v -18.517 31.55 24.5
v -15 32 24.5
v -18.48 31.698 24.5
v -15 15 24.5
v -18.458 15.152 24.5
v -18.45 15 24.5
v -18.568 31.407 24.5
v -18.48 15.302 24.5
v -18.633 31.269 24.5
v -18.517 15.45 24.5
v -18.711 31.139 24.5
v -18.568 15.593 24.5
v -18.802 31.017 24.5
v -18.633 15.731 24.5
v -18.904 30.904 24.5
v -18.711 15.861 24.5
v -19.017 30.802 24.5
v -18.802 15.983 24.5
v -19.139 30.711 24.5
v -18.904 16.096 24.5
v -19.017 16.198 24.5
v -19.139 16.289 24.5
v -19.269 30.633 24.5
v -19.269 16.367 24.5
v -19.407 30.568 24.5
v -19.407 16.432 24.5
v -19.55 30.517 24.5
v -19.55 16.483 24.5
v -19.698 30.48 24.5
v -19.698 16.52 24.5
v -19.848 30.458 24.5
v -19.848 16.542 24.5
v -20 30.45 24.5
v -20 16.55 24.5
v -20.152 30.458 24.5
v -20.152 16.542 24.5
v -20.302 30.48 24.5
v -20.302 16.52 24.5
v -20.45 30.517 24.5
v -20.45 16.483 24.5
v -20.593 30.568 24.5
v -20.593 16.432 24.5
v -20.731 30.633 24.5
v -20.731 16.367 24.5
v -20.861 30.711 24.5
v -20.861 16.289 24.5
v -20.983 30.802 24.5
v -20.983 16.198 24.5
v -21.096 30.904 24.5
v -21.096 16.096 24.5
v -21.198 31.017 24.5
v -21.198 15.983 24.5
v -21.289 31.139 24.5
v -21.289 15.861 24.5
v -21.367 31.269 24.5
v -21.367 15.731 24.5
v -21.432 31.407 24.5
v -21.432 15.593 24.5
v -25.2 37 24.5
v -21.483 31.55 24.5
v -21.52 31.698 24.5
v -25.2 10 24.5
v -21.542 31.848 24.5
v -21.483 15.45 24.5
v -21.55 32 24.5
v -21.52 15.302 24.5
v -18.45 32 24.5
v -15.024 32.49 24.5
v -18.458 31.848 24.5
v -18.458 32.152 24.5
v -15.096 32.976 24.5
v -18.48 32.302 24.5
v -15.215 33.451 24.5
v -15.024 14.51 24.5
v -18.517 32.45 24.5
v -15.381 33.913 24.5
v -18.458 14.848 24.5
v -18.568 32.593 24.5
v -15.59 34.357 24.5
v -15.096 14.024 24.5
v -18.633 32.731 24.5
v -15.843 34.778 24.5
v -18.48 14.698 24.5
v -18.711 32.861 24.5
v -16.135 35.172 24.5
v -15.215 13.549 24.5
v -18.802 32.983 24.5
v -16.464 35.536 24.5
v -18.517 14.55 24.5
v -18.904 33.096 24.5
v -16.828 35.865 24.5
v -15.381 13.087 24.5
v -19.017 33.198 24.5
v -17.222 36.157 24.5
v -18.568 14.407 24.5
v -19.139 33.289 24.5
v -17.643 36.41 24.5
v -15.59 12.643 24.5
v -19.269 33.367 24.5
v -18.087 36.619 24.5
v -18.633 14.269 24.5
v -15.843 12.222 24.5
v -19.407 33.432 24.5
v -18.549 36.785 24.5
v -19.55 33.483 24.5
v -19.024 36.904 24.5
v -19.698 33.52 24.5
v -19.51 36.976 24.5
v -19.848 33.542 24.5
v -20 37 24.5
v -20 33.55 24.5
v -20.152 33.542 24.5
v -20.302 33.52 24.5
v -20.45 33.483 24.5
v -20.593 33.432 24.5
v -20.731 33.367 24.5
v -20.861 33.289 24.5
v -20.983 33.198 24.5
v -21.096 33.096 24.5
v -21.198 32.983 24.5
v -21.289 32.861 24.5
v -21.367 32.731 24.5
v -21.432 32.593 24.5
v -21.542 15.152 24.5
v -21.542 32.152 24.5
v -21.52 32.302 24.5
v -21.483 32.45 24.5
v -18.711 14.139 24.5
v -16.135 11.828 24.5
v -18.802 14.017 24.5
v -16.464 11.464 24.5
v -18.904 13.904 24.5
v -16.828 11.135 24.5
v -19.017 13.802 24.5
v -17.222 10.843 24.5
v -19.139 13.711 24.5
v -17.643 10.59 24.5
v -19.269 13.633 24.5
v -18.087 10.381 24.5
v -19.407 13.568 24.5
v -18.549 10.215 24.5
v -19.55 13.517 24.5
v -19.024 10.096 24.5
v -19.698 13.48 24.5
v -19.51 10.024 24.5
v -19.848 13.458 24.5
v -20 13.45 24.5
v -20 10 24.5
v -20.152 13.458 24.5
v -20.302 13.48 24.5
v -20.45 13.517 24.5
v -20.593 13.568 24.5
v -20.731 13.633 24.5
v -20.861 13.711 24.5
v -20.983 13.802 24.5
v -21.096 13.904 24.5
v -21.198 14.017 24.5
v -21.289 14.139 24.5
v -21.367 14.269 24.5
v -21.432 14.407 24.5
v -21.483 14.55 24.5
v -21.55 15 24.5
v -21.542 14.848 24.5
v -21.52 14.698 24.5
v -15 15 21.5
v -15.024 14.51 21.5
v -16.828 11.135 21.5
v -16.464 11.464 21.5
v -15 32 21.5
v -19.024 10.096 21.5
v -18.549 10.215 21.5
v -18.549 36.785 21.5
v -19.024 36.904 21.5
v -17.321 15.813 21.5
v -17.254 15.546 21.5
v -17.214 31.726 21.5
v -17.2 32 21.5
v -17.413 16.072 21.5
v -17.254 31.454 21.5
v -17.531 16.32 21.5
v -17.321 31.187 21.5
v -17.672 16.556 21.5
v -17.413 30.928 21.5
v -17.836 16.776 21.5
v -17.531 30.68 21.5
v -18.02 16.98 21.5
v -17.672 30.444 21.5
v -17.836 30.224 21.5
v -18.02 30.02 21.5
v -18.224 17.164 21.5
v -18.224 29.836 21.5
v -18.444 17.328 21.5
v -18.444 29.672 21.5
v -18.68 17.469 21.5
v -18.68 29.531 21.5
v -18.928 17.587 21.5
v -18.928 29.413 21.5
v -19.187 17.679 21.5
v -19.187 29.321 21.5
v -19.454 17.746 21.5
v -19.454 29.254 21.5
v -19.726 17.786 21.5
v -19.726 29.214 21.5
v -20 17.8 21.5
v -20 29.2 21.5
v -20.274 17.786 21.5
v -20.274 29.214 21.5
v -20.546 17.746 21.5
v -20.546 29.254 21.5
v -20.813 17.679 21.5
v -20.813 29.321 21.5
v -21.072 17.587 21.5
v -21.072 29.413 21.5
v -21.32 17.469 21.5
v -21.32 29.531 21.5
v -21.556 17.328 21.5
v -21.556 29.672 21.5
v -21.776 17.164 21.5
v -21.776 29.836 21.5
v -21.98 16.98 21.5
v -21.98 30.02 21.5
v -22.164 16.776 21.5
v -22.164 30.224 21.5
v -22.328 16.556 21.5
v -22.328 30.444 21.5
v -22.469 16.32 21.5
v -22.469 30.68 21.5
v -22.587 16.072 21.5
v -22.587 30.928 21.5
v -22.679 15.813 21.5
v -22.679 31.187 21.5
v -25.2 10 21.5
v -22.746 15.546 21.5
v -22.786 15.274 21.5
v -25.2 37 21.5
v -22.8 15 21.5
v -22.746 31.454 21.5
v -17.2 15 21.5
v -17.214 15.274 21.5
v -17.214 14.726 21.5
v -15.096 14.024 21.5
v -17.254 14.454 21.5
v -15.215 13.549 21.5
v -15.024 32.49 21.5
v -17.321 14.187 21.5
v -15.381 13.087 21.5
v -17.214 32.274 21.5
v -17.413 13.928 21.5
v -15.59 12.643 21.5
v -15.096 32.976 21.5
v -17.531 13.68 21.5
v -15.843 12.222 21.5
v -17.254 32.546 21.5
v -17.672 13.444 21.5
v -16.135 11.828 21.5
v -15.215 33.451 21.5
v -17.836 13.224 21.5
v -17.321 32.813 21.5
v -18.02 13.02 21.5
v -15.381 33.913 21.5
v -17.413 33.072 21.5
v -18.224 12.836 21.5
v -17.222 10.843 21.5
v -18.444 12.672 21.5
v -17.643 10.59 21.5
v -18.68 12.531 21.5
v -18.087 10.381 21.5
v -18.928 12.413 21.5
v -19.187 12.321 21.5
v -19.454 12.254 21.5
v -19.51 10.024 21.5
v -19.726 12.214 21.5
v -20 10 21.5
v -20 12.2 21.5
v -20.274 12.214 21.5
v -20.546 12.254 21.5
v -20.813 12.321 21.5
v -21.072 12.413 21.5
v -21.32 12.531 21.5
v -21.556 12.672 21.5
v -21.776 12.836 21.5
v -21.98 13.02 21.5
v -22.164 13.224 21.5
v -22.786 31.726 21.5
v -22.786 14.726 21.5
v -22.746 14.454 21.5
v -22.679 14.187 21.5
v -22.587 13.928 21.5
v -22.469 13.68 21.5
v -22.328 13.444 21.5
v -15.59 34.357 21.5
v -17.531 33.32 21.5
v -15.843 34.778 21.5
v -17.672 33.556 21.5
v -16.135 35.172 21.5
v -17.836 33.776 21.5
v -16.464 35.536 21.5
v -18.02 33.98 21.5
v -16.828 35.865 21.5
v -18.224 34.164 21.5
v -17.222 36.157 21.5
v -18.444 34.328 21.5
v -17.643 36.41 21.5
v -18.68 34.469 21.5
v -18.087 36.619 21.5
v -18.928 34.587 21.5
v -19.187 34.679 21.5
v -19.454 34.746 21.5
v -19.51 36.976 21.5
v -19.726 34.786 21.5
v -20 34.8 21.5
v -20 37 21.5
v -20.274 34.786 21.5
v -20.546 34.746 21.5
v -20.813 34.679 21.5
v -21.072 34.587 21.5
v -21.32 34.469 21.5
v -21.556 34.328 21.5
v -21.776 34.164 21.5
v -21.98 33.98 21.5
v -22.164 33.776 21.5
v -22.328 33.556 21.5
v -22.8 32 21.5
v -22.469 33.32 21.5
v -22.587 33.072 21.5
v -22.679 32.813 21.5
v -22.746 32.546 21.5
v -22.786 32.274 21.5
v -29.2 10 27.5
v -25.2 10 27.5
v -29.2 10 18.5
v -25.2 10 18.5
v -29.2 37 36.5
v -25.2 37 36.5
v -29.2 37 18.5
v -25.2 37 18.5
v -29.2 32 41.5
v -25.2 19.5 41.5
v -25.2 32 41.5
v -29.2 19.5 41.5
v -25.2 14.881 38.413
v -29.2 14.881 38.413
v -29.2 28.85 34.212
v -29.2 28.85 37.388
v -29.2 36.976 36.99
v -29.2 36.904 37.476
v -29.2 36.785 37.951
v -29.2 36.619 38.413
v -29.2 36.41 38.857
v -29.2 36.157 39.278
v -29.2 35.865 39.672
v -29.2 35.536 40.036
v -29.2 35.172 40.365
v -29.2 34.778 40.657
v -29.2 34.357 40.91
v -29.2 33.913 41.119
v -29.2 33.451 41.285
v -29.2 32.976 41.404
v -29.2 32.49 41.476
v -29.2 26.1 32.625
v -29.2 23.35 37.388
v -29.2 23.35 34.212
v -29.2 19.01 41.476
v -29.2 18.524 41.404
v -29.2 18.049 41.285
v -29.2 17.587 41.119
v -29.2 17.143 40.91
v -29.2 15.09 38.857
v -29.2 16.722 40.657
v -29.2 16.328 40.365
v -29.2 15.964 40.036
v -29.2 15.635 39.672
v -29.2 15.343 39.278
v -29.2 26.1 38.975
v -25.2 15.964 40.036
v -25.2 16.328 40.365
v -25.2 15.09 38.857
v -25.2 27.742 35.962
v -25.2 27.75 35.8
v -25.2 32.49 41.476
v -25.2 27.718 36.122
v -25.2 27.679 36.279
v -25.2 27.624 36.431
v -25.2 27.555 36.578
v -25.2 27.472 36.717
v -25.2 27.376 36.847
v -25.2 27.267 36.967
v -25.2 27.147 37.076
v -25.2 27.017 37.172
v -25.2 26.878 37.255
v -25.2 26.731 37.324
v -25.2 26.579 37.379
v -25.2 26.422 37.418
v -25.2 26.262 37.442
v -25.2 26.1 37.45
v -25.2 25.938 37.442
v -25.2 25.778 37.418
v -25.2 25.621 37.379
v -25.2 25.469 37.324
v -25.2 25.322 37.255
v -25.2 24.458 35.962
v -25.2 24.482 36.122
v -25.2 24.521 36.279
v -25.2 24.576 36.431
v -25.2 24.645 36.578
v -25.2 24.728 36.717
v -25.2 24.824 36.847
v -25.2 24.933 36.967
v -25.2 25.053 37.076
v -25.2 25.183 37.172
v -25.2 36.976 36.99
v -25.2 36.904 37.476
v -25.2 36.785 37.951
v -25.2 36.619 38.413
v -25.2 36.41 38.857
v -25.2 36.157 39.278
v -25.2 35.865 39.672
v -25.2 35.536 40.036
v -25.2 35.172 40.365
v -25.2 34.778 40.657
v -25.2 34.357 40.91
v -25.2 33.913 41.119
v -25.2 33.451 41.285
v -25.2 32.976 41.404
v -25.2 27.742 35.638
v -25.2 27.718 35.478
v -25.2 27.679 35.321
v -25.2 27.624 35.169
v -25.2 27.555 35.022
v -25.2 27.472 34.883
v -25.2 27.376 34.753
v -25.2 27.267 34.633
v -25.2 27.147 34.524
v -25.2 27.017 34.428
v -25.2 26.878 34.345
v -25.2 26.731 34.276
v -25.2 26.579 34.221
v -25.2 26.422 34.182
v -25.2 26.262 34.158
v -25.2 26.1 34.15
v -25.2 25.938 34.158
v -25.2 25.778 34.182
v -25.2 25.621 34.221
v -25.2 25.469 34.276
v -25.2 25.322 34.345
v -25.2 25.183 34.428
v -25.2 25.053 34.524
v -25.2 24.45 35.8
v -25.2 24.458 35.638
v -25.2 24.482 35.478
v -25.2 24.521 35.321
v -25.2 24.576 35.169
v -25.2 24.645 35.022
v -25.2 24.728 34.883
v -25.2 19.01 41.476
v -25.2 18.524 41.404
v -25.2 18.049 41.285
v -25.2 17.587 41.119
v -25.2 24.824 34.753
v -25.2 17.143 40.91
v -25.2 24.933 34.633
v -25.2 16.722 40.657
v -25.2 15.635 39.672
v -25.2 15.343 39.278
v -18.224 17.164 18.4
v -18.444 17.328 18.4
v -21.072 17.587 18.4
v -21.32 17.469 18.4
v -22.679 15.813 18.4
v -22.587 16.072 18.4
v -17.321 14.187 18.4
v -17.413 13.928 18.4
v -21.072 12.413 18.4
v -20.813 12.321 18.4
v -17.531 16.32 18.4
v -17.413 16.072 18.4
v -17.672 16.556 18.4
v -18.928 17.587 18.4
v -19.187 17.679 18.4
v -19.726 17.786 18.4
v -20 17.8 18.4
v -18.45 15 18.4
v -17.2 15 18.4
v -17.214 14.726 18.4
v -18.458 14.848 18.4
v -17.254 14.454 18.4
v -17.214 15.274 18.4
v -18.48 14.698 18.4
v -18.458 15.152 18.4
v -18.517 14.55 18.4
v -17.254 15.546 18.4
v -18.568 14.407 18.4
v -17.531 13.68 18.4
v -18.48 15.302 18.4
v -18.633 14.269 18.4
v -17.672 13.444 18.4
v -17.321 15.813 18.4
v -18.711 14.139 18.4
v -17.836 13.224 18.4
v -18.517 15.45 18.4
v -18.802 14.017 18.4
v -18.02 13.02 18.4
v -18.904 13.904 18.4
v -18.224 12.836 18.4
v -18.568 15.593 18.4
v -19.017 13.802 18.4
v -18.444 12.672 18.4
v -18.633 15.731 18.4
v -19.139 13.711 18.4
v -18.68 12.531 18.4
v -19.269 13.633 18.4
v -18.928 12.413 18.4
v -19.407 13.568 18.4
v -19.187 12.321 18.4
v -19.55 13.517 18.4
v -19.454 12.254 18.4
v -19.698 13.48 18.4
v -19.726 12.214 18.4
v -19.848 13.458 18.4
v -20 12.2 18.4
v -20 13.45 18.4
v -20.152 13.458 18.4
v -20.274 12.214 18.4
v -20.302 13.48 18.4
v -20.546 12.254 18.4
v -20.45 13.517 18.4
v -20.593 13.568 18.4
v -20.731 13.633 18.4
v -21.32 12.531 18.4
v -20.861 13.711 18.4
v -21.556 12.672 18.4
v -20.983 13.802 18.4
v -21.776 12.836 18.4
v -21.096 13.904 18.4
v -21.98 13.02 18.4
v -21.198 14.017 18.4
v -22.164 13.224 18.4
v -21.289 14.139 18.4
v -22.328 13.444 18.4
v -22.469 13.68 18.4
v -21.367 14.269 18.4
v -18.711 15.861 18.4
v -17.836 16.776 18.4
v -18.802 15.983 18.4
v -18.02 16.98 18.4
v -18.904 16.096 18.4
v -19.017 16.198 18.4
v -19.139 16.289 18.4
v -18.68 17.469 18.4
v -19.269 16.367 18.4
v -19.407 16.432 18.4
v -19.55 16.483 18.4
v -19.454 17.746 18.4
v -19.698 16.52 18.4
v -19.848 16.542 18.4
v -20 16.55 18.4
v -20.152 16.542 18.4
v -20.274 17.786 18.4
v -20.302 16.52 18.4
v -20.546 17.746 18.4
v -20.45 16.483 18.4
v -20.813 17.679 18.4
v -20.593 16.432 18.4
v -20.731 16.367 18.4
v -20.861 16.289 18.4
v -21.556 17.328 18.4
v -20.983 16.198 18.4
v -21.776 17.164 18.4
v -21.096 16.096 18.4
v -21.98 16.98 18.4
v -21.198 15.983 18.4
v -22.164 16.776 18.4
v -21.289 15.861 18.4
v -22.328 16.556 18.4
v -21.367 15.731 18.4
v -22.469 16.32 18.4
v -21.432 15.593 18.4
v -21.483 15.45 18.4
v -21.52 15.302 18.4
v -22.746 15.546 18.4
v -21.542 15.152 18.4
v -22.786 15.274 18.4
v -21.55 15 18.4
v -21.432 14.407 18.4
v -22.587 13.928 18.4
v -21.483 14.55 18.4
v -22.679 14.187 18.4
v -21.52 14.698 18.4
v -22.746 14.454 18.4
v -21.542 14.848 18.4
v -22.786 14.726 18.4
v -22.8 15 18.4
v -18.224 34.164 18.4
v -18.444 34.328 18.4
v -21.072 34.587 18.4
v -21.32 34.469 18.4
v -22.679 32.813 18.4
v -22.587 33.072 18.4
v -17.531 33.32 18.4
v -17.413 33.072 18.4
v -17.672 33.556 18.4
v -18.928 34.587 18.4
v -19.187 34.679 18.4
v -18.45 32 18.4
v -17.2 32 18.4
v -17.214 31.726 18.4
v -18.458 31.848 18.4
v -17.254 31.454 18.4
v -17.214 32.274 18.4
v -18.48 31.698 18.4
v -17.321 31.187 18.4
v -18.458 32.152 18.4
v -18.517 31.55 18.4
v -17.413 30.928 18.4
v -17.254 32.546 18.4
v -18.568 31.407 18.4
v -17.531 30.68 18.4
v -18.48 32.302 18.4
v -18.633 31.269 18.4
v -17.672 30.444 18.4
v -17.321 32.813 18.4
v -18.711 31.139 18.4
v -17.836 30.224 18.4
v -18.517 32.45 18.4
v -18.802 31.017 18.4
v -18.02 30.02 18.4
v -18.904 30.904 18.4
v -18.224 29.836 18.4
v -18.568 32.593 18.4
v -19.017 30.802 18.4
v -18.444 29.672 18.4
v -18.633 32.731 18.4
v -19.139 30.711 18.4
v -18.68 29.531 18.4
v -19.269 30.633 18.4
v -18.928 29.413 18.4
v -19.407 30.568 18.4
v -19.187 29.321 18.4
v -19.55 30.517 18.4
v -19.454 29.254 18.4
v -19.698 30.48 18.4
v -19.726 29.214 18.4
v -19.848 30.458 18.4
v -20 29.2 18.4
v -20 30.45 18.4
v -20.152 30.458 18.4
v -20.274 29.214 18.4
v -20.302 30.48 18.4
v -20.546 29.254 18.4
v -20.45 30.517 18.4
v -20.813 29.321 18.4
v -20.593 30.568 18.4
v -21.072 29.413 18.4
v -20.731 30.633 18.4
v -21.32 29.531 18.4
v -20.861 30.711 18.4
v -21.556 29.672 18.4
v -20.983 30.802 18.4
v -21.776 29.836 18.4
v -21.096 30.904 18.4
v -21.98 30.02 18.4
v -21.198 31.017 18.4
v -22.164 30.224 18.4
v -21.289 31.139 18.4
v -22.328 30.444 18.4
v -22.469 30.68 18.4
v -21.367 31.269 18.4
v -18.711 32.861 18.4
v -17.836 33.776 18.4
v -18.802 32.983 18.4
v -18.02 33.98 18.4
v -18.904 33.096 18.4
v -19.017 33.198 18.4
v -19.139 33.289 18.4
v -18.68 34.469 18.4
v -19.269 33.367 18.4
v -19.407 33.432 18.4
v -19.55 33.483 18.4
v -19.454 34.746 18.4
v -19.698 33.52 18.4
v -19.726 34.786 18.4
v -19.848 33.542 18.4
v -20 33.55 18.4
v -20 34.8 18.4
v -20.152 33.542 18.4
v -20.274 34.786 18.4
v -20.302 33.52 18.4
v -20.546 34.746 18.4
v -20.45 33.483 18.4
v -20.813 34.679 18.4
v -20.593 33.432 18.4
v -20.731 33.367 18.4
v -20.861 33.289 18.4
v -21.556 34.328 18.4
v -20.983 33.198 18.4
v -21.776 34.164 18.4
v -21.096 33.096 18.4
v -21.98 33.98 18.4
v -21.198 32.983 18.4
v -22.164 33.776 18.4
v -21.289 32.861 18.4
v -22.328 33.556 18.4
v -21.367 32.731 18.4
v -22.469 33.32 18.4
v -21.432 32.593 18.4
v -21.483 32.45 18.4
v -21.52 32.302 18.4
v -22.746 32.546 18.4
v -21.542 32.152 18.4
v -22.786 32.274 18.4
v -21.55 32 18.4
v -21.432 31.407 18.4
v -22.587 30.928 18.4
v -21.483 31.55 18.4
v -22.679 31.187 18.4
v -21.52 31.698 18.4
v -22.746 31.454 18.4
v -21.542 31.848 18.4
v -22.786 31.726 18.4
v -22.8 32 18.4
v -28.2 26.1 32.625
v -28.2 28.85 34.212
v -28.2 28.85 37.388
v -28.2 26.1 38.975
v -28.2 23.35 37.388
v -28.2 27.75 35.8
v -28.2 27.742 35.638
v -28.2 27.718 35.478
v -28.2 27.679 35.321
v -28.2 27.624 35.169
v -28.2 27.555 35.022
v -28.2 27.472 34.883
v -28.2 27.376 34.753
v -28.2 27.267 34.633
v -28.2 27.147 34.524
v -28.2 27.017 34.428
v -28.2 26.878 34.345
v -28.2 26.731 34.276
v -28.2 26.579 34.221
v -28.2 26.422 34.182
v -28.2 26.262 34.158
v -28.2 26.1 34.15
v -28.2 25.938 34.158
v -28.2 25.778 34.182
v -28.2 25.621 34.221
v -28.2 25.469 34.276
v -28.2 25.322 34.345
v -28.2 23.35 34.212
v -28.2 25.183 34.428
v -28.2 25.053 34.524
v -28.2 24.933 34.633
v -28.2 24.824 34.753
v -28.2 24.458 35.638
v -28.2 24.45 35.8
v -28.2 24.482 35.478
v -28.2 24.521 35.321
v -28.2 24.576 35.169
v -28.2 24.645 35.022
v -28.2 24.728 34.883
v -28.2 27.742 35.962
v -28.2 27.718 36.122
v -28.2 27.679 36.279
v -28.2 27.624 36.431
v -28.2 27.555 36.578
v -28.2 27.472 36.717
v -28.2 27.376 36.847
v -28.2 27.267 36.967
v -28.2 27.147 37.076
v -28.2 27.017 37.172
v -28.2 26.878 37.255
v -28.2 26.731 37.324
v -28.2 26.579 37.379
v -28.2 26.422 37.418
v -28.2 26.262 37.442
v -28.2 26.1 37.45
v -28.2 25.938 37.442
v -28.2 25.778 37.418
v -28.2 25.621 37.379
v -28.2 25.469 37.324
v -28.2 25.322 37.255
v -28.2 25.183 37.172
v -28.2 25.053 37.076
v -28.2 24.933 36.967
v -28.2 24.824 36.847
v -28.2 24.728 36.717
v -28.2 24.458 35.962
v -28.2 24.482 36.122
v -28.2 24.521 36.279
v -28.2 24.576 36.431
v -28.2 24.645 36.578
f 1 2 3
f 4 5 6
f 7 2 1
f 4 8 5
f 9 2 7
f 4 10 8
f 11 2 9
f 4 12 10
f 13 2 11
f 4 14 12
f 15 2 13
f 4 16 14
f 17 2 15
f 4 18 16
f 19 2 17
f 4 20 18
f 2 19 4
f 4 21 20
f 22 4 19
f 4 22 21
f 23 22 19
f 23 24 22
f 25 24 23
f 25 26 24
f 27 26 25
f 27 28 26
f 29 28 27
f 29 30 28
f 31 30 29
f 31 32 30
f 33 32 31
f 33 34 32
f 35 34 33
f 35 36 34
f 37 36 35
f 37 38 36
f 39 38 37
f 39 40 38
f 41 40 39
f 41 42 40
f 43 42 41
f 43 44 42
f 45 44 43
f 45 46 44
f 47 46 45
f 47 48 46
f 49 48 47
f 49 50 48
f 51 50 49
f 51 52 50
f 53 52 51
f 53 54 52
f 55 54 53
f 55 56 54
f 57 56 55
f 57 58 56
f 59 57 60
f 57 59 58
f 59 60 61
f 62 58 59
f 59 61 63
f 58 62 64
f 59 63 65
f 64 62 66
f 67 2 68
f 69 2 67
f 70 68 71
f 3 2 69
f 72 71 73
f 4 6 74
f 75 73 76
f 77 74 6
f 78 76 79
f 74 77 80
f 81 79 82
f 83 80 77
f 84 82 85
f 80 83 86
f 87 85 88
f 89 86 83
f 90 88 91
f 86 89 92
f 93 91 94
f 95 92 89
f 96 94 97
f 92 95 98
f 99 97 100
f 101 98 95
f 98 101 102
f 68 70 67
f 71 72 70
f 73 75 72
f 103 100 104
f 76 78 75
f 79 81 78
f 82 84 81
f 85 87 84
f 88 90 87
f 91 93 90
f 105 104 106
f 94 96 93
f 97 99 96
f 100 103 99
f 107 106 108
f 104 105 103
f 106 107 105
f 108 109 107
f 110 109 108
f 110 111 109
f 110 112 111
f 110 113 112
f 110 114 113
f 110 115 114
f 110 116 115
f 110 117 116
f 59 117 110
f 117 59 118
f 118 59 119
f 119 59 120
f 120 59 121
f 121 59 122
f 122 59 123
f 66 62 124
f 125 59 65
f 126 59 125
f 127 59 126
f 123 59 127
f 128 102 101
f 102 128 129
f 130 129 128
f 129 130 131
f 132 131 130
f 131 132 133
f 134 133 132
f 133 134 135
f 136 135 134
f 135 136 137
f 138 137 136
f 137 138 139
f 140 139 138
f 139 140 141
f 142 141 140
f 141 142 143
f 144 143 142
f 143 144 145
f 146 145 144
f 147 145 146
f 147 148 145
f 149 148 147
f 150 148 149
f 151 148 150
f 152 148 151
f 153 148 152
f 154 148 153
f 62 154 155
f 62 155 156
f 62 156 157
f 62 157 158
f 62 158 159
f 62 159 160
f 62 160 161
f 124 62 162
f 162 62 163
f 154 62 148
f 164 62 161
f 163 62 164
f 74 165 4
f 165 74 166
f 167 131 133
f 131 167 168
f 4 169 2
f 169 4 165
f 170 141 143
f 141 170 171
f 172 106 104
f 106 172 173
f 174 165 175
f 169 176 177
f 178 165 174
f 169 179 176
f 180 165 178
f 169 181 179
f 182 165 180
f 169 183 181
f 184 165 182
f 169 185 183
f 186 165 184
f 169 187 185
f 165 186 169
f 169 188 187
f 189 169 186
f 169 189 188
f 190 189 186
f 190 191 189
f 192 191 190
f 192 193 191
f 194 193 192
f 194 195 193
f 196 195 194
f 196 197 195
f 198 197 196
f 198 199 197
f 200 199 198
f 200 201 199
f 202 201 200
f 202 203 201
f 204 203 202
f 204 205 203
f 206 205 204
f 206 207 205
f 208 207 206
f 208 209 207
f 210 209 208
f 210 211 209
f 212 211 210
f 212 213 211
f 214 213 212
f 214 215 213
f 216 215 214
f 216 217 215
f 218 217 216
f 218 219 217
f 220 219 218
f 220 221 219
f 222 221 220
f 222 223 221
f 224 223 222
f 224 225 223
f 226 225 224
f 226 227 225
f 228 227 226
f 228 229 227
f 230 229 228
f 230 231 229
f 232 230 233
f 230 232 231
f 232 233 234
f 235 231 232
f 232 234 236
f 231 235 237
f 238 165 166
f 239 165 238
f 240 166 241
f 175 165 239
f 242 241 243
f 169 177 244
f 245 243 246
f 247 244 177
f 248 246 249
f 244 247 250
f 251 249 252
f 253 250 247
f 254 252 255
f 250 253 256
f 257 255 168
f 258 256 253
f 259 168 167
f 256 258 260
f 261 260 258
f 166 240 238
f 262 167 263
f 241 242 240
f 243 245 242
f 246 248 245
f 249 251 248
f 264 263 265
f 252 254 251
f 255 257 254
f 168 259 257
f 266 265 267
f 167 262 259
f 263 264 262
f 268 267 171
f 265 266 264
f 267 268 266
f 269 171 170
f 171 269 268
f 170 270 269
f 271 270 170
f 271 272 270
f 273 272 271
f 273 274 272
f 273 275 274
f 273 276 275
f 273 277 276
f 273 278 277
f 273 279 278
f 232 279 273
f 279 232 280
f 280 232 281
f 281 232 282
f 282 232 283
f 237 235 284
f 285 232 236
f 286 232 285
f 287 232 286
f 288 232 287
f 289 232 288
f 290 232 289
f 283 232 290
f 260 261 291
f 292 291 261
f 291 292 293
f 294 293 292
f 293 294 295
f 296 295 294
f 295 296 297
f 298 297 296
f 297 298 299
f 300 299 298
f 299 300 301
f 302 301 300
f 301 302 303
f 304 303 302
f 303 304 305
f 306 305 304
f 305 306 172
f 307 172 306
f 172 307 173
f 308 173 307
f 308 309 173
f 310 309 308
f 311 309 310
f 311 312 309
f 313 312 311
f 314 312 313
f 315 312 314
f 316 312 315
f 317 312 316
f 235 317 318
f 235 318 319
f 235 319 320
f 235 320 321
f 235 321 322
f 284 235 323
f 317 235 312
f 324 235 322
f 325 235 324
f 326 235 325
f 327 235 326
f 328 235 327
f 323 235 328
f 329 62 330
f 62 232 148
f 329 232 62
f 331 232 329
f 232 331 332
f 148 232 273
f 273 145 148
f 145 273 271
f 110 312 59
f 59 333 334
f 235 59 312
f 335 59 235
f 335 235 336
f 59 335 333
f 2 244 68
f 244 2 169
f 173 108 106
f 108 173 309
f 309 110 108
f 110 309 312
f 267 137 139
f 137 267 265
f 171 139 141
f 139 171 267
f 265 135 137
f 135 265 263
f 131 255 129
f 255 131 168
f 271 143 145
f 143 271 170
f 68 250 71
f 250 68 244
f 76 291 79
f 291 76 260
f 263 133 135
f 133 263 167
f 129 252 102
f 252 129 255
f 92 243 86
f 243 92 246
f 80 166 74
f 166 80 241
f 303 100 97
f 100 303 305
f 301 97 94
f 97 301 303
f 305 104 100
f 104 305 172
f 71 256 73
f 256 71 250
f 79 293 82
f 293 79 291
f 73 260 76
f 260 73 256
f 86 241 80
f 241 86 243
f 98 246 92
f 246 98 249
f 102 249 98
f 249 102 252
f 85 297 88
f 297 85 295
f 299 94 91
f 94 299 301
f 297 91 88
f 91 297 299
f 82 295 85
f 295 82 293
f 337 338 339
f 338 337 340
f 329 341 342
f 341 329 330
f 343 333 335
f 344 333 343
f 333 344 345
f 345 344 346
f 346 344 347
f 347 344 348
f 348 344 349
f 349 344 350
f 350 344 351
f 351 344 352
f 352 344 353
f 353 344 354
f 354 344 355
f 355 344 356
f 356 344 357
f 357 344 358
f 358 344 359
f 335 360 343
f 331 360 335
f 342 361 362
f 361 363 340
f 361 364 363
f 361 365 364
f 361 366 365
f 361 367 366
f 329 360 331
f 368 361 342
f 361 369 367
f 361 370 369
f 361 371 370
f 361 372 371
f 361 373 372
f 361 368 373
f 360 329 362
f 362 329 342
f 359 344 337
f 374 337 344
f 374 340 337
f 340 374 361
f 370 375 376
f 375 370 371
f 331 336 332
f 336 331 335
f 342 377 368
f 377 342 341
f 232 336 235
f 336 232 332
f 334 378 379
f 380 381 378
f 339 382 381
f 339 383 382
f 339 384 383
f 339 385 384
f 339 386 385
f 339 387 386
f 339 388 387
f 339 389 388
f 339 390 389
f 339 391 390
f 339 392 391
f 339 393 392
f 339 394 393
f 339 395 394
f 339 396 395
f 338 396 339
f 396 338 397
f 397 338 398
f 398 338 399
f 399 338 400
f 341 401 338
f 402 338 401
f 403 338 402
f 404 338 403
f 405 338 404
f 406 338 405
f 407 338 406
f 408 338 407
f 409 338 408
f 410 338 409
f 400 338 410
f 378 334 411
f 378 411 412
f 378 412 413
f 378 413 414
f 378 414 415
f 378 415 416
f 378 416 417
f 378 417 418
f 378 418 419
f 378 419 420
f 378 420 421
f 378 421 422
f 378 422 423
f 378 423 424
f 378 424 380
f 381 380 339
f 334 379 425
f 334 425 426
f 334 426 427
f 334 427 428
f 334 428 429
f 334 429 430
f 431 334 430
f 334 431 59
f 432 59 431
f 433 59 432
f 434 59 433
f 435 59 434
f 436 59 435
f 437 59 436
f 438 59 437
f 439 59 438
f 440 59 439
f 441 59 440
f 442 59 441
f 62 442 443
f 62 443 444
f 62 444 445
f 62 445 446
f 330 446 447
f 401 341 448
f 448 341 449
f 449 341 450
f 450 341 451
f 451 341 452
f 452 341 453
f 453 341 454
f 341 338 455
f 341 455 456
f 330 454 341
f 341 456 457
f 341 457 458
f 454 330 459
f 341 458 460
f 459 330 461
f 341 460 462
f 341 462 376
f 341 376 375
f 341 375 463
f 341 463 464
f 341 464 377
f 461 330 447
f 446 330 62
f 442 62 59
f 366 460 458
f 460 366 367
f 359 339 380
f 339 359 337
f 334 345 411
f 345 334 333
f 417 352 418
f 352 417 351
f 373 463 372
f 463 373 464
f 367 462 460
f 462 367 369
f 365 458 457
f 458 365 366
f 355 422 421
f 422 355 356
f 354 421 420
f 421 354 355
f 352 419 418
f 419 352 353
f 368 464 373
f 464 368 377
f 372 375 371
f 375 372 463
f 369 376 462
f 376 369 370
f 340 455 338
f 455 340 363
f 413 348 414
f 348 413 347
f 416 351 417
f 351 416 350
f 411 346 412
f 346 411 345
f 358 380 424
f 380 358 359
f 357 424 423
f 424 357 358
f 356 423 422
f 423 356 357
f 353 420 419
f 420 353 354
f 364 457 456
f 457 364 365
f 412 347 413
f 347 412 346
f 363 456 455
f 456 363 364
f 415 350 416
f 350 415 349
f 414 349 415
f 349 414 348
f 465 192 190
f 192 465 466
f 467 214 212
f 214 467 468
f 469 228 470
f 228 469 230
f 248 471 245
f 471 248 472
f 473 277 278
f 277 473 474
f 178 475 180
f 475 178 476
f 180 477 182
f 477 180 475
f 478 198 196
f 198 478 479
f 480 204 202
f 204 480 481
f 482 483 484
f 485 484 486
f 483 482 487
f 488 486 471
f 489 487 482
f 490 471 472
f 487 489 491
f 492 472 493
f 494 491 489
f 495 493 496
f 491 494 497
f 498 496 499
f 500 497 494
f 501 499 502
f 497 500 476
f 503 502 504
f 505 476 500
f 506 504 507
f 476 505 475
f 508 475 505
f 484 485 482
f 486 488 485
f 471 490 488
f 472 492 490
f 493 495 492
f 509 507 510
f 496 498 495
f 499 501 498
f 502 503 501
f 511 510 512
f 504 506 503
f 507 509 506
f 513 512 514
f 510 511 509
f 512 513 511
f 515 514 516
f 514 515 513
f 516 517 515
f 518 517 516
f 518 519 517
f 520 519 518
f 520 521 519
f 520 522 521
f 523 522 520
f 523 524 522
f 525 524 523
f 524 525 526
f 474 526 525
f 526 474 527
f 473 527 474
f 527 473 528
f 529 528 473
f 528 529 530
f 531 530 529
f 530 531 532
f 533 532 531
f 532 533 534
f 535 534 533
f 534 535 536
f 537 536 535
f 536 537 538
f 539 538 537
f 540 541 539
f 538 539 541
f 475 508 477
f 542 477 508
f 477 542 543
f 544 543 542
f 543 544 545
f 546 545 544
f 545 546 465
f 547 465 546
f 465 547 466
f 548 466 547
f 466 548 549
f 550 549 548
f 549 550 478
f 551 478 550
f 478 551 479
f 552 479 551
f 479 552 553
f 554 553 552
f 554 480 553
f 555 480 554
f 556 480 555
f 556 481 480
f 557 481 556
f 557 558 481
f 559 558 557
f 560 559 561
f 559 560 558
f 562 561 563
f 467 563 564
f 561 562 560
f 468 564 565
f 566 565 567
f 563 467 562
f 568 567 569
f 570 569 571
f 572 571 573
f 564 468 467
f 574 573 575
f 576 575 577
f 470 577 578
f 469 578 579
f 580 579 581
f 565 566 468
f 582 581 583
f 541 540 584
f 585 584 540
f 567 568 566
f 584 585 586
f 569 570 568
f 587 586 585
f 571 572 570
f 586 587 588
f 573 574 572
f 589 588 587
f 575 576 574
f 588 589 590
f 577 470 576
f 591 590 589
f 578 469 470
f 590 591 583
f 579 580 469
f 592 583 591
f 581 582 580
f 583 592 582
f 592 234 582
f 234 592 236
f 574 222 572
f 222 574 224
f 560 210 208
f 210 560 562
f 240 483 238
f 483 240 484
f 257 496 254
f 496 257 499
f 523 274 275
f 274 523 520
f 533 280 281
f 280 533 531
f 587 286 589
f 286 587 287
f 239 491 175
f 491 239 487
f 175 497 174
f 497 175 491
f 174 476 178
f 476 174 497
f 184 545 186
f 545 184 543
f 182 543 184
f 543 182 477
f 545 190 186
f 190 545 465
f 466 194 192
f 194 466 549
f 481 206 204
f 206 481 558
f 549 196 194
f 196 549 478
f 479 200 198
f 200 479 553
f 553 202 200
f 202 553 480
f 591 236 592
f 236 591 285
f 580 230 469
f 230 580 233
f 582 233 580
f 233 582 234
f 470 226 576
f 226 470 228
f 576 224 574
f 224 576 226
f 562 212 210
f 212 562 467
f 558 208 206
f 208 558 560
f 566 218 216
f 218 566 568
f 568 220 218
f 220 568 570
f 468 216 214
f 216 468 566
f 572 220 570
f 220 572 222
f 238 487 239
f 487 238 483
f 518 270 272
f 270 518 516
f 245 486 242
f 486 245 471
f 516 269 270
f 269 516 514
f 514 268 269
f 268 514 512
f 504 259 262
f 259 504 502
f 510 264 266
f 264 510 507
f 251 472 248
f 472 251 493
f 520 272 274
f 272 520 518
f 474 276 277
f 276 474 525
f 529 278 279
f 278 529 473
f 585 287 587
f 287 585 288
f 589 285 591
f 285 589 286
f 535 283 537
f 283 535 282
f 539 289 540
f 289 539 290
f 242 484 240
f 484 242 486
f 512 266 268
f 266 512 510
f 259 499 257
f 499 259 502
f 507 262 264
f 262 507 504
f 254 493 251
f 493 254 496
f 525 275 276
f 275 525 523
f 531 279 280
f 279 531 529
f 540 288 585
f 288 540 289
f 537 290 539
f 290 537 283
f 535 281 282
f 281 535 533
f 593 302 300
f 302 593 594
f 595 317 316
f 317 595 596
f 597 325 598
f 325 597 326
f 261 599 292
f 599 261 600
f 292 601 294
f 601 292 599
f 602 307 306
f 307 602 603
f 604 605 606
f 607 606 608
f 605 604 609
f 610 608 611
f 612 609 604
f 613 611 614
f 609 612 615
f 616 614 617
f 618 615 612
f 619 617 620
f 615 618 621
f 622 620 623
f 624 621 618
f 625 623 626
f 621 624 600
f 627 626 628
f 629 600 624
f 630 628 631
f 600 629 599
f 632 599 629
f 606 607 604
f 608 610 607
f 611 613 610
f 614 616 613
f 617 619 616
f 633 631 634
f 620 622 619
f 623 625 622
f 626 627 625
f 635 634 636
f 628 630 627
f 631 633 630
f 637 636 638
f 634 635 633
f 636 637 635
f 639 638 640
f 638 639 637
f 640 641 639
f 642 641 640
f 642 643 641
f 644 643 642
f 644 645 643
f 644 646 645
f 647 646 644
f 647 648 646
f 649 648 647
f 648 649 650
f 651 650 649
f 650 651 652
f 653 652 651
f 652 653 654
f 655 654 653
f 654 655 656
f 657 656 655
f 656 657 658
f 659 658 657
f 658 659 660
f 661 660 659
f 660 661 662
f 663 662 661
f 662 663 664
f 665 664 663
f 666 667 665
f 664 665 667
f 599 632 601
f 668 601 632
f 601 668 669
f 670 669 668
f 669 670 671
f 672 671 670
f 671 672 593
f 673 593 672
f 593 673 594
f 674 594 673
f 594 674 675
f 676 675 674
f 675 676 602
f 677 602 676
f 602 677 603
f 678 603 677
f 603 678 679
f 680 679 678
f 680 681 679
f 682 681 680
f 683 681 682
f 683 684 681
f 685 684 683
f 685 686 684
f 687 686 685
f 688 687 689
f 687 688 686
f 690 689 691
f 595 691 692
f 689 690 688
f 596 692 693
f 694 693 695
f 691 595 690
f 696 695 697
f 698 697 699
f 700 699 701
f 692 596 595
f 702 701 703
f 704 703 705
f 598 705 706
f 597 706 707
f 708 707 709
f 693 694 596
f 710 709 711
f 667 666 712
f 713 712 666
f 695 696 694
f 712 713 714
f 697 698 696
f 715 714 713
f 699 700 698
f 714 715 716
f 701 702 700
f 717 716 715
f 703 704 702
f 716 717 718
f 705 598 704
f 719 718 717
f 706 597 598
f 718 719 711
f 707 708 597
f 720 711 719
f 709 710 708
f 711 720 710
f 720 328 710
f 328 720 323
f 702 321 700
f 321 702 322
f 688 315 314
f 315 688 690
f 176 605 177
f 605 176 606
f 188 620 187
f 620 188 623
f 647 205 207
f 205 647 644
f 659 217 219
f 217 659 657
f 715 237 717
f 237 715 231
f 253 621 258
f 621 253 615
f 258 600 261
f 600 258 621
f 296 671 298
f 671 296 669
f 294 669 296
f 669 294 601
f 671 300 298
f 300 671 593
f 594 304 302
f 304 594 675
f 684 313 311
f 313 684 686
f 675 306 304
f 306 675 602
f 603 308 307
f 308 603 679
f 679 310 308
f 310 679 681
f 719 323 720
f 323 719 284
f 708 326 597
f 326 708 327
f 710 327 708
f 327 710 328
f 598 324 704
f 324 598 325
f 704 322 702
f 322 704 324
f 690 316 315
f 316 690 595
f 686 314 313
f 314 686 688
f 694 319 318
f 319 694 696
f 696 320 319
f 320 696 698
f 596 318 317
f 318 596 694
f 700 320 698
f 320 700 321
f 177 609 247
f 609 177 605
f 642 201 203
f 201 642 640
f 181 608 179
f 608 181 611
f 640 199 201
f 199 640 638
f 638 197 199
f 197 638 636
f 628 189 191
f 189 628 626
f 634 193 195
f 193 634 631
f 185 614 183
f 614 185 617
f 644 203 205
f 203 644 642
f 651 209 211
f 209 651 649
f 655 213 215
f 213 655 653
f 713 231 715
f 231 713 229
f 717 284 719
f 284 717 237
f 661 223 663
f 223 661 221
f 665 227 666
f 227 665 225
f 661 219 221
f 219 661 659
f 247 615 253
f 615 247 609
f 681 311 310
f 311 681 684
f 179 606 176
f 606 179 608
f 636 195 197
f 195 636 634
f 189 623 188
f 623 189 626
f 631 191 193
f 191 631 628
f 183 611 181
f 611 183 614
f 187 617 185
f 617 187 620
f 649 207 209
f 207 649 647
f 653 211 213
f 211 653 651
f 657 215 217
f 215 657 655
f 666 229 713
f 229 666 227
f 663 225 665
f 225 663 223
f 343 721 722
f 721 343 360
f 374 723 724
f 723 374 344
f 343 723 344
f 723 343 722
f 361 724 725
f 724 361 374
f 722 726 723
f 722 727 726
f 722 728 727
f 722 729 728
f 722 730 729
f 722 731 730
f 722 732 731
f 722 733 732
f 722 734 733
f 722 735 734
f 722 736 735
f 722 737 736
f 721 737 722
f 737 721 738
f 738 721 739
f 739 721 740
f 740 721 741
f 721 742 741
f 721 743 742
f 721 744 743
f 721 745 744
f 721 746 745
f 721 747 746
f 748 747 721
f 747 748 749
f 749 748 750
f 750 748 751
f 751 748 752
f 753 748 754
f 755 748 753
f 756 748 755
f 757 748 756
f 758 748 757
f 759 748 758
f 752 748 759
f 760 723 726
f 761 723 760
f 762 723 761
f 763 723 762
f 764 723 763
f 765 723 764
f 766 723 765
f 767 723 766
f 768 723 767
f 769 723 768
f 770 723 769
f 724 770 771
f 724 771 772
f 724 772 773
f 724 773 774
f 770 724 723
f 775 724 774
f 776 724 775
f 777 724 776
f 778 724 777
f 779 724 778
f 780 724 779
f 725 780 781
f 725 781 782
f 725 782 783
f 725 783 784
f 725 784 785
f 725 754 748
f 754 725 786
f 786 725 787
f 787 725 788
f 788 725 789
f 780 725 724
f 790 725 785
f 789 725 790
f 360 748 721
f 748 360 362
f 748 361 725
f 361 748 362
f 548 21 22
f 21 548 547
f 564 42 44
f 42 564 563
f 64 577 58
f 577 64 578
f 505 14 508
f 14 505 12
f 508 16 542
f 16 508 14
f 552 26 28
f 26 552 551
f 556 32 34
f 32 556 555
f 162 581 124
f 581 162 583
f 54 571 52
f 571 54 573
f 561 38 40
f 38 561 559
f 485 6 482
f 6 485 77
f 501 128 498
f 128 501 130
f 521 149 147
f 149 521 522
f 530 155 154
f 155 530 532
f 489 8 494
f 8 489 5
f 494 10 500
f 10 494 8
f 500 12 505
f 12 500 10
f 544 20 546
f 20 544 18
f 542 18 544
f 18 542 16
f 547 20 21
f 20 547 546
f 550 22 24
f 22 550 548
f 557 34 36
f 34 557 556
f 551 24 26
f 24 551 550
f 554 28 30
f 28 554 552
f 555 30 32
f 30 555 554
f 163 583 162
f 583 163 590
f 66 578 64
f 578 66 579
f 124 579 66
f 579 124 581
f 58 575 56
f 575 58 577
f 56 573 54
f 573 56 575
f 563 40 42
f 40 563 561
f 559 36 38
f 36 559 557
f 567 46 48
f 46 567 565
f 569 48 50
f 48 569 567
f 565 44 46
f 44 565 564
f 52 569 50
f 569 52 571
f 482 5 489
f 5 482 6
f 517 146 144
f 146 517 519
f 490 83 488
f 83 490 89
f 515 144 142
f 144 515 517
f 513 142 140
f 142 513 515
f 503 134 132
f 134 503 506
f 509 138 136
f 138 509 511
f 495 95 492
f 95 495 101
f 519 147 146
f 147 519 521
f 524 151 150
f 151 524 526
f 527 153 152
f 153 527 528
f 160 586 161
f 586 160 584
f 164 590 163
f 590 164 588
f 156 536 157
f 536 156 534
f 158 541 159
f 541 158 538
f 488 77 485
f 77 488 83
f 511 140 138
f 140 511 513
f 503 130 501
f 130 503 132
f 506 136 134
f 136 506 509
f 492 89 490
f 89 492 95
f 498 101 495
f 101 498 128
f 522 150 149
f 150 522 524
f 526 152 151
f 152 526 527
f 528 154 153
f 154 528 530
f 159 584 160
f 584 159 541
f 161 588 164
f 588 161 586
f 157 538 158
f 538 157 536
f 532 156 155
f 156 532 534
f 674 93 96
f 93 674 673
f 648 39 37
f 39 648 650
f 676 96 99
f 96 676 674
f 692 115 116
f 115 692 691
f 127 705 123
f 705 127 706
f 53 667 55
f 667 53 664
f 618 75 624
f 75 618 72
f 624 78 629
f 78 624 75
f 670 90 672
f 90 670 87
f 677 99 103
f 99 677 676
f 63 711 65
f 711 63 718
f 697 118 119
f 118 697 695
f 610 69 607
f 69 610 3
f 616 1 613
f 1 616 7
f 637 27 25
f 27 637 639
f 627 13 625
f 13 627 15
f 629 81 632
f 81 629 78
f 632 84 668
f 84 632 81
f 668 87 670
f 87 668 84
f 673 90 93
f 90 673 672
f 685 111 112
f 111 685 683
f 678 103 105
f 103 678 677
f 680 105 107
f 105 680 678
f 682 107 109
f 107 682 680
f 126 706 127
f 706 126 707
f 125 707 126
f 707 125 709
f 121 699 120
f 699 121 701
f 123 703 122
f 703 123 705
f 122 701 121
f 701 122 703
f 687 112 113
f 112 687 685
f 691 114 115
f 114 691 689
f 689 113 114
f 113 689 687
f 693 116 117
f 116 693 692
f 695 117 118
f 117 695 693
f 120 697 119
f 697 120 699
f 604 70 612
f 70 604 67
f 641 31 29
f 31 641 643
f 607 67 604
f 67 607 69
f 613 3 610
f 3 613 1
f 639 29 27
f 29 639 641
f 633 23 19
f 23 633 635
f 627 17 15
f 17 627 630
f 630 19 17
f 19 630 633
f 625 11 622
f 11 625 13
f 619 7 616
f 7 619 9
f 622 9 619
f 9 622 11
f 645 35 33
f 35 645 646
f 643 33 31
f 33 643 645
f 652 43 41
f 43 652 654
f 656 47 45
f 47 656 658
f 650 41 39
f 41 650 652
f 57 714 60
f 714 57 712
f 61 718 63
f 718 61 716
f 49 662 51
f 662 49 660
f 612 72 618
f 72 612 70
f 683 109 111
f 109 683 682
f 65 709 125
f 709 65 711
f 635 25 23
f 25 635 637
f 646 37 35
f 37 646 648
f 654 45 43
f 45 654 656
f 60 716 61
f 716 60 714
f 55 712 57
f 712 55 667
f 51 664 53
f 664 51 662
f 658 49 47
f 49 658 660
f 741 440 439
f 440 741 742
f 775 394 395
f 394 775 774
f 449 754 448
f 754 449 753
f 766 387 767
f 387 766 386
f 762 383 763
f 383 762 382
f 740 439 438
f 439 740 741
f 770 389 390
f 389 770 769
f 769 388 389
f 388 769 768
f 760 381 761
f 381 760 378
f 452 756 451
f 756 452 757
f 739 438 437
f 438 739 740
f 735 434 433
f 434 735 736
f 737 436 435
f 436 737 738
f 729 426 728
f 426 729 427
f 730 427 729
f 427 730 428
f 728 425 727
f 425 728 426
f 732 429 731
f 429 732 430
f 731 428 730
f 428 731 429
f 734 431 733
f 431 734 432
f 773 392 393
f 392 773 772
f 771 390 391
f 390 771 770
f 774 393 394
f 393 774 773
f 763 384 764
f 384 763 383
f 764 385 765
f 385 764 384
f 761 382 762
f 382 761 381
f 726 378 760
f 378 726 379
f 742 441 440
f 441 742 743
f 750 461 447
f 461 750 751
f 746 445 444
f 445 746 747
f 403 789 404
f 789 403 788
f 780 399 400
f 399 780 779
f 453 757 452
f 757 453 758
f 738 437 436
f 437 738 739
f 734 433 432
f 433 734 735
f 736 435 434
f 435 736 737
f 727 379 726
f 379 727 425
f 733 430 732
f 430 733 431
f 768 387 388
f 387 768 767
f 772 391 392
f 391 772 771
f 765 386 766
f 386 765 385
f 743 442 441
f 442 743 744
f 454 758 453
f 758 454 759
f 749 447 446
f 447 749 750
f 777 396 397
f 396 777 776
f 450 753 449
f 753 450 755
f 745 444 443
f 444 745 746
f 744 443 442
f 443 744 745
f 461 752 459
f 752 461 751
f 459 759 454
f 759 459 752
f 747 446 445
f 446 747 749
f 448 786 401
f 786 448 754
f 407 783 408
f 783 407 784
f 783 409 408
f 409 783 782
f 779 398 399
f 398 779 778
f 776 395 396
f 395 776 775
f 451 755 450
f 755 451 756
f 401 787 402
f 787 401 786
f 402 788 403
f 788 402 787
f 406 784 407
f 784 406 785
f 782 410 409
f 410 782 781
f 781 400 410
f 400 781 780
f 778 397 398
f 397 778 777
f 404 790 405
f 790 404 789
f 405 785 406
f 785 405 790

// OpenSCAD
include <z-config.scad>
use <../../openscad/nema17.scad>
use <z.scad>
use <x_carriage_directdrive_enhanced.scad>
use <e3d_v5_liftdown_adapter.scad>

module X_EndStop_Stand() {
    sbz=17.65-CARTopBaseCZ/2;
    bdia=10;
    tz=3;
    hz=4;
    //render() 
    difference() {
        union() {
            // Horizontal
            hull() {
                translate([-XENDCX/2+5, XENDCY/2-25+5, XENDFullCZ]) cylinder(d=bdia, h=tz);
                translate([-XENDCX/2+5, XENDCY/2-3, XENDFullCZ]) cylinder(d=bdia, h=tz);
                translate([-XENDCX/2-3, XENDCY/2-25, XENDFullCZ]) cube([6, 27, tz]);
            }
            // Vertical
            translate([-3.7, 0, XENDFullCZ+35]) rotate([0, -90]) hull() {
                translate([-XENDCX/2+5, XENDCY/2-25+9.5, XENDFullCZ]) cylinder(d=bdia, h=hz);
                translate([-XENDCX/2+5, XENDCY/2-3, XENDFullCZ]) cylinder(d=bdia, h=hz);
                translate([-XENDCX/2-13, XENDCY/2-25, XENDFullCZ]) cube([9, 27, hz]);
            }
            translate([-XENDCX/2+5, XENDCY/2-25+5, XENDFullCZ-3.1]) cylinder(d=5.6, h=tz*2+0.1);
            translate([-XENDCX/2+5, XENDCY/2-3, XENDFullCZ-3.1]) cylinder(d=5.6, h=tz*2+0.1);
        }
        color("Red") {
            translate([-XENDCX/2+5, XENDCY/2-25+5, XENDFullCZ-tz*2-5]) cylinder(d=3.1, h=30);
            translate([-XENDCX/2+5, XENDCY/2-3, XENDFullCZ-tz*2-5]) cylinder(d=3.1, h=30);
            translate([-XENDCX/2-25, XENDCY/2-8.9, XENDFullCZ+sbz]) rotate([0, 90, 0]) cylinder(d=3.3, h=40);
            // Nut 
            translate([-XENDCX/2-3.2, XENDCY/2-8.9, XENDFullCZ+sbz]) scale([3, 1, 1]) rotate([0, 90]) nut("M3");
        }
    }
    //color("Red") 
    %translate([-XENDCX/2-25, XENDCY/2-8.9, XENDFullCZ+sbz]) rotate([0, 90, 0]) cylinder(d=2.5, h=40);
}

X_EndStop_Stand();
